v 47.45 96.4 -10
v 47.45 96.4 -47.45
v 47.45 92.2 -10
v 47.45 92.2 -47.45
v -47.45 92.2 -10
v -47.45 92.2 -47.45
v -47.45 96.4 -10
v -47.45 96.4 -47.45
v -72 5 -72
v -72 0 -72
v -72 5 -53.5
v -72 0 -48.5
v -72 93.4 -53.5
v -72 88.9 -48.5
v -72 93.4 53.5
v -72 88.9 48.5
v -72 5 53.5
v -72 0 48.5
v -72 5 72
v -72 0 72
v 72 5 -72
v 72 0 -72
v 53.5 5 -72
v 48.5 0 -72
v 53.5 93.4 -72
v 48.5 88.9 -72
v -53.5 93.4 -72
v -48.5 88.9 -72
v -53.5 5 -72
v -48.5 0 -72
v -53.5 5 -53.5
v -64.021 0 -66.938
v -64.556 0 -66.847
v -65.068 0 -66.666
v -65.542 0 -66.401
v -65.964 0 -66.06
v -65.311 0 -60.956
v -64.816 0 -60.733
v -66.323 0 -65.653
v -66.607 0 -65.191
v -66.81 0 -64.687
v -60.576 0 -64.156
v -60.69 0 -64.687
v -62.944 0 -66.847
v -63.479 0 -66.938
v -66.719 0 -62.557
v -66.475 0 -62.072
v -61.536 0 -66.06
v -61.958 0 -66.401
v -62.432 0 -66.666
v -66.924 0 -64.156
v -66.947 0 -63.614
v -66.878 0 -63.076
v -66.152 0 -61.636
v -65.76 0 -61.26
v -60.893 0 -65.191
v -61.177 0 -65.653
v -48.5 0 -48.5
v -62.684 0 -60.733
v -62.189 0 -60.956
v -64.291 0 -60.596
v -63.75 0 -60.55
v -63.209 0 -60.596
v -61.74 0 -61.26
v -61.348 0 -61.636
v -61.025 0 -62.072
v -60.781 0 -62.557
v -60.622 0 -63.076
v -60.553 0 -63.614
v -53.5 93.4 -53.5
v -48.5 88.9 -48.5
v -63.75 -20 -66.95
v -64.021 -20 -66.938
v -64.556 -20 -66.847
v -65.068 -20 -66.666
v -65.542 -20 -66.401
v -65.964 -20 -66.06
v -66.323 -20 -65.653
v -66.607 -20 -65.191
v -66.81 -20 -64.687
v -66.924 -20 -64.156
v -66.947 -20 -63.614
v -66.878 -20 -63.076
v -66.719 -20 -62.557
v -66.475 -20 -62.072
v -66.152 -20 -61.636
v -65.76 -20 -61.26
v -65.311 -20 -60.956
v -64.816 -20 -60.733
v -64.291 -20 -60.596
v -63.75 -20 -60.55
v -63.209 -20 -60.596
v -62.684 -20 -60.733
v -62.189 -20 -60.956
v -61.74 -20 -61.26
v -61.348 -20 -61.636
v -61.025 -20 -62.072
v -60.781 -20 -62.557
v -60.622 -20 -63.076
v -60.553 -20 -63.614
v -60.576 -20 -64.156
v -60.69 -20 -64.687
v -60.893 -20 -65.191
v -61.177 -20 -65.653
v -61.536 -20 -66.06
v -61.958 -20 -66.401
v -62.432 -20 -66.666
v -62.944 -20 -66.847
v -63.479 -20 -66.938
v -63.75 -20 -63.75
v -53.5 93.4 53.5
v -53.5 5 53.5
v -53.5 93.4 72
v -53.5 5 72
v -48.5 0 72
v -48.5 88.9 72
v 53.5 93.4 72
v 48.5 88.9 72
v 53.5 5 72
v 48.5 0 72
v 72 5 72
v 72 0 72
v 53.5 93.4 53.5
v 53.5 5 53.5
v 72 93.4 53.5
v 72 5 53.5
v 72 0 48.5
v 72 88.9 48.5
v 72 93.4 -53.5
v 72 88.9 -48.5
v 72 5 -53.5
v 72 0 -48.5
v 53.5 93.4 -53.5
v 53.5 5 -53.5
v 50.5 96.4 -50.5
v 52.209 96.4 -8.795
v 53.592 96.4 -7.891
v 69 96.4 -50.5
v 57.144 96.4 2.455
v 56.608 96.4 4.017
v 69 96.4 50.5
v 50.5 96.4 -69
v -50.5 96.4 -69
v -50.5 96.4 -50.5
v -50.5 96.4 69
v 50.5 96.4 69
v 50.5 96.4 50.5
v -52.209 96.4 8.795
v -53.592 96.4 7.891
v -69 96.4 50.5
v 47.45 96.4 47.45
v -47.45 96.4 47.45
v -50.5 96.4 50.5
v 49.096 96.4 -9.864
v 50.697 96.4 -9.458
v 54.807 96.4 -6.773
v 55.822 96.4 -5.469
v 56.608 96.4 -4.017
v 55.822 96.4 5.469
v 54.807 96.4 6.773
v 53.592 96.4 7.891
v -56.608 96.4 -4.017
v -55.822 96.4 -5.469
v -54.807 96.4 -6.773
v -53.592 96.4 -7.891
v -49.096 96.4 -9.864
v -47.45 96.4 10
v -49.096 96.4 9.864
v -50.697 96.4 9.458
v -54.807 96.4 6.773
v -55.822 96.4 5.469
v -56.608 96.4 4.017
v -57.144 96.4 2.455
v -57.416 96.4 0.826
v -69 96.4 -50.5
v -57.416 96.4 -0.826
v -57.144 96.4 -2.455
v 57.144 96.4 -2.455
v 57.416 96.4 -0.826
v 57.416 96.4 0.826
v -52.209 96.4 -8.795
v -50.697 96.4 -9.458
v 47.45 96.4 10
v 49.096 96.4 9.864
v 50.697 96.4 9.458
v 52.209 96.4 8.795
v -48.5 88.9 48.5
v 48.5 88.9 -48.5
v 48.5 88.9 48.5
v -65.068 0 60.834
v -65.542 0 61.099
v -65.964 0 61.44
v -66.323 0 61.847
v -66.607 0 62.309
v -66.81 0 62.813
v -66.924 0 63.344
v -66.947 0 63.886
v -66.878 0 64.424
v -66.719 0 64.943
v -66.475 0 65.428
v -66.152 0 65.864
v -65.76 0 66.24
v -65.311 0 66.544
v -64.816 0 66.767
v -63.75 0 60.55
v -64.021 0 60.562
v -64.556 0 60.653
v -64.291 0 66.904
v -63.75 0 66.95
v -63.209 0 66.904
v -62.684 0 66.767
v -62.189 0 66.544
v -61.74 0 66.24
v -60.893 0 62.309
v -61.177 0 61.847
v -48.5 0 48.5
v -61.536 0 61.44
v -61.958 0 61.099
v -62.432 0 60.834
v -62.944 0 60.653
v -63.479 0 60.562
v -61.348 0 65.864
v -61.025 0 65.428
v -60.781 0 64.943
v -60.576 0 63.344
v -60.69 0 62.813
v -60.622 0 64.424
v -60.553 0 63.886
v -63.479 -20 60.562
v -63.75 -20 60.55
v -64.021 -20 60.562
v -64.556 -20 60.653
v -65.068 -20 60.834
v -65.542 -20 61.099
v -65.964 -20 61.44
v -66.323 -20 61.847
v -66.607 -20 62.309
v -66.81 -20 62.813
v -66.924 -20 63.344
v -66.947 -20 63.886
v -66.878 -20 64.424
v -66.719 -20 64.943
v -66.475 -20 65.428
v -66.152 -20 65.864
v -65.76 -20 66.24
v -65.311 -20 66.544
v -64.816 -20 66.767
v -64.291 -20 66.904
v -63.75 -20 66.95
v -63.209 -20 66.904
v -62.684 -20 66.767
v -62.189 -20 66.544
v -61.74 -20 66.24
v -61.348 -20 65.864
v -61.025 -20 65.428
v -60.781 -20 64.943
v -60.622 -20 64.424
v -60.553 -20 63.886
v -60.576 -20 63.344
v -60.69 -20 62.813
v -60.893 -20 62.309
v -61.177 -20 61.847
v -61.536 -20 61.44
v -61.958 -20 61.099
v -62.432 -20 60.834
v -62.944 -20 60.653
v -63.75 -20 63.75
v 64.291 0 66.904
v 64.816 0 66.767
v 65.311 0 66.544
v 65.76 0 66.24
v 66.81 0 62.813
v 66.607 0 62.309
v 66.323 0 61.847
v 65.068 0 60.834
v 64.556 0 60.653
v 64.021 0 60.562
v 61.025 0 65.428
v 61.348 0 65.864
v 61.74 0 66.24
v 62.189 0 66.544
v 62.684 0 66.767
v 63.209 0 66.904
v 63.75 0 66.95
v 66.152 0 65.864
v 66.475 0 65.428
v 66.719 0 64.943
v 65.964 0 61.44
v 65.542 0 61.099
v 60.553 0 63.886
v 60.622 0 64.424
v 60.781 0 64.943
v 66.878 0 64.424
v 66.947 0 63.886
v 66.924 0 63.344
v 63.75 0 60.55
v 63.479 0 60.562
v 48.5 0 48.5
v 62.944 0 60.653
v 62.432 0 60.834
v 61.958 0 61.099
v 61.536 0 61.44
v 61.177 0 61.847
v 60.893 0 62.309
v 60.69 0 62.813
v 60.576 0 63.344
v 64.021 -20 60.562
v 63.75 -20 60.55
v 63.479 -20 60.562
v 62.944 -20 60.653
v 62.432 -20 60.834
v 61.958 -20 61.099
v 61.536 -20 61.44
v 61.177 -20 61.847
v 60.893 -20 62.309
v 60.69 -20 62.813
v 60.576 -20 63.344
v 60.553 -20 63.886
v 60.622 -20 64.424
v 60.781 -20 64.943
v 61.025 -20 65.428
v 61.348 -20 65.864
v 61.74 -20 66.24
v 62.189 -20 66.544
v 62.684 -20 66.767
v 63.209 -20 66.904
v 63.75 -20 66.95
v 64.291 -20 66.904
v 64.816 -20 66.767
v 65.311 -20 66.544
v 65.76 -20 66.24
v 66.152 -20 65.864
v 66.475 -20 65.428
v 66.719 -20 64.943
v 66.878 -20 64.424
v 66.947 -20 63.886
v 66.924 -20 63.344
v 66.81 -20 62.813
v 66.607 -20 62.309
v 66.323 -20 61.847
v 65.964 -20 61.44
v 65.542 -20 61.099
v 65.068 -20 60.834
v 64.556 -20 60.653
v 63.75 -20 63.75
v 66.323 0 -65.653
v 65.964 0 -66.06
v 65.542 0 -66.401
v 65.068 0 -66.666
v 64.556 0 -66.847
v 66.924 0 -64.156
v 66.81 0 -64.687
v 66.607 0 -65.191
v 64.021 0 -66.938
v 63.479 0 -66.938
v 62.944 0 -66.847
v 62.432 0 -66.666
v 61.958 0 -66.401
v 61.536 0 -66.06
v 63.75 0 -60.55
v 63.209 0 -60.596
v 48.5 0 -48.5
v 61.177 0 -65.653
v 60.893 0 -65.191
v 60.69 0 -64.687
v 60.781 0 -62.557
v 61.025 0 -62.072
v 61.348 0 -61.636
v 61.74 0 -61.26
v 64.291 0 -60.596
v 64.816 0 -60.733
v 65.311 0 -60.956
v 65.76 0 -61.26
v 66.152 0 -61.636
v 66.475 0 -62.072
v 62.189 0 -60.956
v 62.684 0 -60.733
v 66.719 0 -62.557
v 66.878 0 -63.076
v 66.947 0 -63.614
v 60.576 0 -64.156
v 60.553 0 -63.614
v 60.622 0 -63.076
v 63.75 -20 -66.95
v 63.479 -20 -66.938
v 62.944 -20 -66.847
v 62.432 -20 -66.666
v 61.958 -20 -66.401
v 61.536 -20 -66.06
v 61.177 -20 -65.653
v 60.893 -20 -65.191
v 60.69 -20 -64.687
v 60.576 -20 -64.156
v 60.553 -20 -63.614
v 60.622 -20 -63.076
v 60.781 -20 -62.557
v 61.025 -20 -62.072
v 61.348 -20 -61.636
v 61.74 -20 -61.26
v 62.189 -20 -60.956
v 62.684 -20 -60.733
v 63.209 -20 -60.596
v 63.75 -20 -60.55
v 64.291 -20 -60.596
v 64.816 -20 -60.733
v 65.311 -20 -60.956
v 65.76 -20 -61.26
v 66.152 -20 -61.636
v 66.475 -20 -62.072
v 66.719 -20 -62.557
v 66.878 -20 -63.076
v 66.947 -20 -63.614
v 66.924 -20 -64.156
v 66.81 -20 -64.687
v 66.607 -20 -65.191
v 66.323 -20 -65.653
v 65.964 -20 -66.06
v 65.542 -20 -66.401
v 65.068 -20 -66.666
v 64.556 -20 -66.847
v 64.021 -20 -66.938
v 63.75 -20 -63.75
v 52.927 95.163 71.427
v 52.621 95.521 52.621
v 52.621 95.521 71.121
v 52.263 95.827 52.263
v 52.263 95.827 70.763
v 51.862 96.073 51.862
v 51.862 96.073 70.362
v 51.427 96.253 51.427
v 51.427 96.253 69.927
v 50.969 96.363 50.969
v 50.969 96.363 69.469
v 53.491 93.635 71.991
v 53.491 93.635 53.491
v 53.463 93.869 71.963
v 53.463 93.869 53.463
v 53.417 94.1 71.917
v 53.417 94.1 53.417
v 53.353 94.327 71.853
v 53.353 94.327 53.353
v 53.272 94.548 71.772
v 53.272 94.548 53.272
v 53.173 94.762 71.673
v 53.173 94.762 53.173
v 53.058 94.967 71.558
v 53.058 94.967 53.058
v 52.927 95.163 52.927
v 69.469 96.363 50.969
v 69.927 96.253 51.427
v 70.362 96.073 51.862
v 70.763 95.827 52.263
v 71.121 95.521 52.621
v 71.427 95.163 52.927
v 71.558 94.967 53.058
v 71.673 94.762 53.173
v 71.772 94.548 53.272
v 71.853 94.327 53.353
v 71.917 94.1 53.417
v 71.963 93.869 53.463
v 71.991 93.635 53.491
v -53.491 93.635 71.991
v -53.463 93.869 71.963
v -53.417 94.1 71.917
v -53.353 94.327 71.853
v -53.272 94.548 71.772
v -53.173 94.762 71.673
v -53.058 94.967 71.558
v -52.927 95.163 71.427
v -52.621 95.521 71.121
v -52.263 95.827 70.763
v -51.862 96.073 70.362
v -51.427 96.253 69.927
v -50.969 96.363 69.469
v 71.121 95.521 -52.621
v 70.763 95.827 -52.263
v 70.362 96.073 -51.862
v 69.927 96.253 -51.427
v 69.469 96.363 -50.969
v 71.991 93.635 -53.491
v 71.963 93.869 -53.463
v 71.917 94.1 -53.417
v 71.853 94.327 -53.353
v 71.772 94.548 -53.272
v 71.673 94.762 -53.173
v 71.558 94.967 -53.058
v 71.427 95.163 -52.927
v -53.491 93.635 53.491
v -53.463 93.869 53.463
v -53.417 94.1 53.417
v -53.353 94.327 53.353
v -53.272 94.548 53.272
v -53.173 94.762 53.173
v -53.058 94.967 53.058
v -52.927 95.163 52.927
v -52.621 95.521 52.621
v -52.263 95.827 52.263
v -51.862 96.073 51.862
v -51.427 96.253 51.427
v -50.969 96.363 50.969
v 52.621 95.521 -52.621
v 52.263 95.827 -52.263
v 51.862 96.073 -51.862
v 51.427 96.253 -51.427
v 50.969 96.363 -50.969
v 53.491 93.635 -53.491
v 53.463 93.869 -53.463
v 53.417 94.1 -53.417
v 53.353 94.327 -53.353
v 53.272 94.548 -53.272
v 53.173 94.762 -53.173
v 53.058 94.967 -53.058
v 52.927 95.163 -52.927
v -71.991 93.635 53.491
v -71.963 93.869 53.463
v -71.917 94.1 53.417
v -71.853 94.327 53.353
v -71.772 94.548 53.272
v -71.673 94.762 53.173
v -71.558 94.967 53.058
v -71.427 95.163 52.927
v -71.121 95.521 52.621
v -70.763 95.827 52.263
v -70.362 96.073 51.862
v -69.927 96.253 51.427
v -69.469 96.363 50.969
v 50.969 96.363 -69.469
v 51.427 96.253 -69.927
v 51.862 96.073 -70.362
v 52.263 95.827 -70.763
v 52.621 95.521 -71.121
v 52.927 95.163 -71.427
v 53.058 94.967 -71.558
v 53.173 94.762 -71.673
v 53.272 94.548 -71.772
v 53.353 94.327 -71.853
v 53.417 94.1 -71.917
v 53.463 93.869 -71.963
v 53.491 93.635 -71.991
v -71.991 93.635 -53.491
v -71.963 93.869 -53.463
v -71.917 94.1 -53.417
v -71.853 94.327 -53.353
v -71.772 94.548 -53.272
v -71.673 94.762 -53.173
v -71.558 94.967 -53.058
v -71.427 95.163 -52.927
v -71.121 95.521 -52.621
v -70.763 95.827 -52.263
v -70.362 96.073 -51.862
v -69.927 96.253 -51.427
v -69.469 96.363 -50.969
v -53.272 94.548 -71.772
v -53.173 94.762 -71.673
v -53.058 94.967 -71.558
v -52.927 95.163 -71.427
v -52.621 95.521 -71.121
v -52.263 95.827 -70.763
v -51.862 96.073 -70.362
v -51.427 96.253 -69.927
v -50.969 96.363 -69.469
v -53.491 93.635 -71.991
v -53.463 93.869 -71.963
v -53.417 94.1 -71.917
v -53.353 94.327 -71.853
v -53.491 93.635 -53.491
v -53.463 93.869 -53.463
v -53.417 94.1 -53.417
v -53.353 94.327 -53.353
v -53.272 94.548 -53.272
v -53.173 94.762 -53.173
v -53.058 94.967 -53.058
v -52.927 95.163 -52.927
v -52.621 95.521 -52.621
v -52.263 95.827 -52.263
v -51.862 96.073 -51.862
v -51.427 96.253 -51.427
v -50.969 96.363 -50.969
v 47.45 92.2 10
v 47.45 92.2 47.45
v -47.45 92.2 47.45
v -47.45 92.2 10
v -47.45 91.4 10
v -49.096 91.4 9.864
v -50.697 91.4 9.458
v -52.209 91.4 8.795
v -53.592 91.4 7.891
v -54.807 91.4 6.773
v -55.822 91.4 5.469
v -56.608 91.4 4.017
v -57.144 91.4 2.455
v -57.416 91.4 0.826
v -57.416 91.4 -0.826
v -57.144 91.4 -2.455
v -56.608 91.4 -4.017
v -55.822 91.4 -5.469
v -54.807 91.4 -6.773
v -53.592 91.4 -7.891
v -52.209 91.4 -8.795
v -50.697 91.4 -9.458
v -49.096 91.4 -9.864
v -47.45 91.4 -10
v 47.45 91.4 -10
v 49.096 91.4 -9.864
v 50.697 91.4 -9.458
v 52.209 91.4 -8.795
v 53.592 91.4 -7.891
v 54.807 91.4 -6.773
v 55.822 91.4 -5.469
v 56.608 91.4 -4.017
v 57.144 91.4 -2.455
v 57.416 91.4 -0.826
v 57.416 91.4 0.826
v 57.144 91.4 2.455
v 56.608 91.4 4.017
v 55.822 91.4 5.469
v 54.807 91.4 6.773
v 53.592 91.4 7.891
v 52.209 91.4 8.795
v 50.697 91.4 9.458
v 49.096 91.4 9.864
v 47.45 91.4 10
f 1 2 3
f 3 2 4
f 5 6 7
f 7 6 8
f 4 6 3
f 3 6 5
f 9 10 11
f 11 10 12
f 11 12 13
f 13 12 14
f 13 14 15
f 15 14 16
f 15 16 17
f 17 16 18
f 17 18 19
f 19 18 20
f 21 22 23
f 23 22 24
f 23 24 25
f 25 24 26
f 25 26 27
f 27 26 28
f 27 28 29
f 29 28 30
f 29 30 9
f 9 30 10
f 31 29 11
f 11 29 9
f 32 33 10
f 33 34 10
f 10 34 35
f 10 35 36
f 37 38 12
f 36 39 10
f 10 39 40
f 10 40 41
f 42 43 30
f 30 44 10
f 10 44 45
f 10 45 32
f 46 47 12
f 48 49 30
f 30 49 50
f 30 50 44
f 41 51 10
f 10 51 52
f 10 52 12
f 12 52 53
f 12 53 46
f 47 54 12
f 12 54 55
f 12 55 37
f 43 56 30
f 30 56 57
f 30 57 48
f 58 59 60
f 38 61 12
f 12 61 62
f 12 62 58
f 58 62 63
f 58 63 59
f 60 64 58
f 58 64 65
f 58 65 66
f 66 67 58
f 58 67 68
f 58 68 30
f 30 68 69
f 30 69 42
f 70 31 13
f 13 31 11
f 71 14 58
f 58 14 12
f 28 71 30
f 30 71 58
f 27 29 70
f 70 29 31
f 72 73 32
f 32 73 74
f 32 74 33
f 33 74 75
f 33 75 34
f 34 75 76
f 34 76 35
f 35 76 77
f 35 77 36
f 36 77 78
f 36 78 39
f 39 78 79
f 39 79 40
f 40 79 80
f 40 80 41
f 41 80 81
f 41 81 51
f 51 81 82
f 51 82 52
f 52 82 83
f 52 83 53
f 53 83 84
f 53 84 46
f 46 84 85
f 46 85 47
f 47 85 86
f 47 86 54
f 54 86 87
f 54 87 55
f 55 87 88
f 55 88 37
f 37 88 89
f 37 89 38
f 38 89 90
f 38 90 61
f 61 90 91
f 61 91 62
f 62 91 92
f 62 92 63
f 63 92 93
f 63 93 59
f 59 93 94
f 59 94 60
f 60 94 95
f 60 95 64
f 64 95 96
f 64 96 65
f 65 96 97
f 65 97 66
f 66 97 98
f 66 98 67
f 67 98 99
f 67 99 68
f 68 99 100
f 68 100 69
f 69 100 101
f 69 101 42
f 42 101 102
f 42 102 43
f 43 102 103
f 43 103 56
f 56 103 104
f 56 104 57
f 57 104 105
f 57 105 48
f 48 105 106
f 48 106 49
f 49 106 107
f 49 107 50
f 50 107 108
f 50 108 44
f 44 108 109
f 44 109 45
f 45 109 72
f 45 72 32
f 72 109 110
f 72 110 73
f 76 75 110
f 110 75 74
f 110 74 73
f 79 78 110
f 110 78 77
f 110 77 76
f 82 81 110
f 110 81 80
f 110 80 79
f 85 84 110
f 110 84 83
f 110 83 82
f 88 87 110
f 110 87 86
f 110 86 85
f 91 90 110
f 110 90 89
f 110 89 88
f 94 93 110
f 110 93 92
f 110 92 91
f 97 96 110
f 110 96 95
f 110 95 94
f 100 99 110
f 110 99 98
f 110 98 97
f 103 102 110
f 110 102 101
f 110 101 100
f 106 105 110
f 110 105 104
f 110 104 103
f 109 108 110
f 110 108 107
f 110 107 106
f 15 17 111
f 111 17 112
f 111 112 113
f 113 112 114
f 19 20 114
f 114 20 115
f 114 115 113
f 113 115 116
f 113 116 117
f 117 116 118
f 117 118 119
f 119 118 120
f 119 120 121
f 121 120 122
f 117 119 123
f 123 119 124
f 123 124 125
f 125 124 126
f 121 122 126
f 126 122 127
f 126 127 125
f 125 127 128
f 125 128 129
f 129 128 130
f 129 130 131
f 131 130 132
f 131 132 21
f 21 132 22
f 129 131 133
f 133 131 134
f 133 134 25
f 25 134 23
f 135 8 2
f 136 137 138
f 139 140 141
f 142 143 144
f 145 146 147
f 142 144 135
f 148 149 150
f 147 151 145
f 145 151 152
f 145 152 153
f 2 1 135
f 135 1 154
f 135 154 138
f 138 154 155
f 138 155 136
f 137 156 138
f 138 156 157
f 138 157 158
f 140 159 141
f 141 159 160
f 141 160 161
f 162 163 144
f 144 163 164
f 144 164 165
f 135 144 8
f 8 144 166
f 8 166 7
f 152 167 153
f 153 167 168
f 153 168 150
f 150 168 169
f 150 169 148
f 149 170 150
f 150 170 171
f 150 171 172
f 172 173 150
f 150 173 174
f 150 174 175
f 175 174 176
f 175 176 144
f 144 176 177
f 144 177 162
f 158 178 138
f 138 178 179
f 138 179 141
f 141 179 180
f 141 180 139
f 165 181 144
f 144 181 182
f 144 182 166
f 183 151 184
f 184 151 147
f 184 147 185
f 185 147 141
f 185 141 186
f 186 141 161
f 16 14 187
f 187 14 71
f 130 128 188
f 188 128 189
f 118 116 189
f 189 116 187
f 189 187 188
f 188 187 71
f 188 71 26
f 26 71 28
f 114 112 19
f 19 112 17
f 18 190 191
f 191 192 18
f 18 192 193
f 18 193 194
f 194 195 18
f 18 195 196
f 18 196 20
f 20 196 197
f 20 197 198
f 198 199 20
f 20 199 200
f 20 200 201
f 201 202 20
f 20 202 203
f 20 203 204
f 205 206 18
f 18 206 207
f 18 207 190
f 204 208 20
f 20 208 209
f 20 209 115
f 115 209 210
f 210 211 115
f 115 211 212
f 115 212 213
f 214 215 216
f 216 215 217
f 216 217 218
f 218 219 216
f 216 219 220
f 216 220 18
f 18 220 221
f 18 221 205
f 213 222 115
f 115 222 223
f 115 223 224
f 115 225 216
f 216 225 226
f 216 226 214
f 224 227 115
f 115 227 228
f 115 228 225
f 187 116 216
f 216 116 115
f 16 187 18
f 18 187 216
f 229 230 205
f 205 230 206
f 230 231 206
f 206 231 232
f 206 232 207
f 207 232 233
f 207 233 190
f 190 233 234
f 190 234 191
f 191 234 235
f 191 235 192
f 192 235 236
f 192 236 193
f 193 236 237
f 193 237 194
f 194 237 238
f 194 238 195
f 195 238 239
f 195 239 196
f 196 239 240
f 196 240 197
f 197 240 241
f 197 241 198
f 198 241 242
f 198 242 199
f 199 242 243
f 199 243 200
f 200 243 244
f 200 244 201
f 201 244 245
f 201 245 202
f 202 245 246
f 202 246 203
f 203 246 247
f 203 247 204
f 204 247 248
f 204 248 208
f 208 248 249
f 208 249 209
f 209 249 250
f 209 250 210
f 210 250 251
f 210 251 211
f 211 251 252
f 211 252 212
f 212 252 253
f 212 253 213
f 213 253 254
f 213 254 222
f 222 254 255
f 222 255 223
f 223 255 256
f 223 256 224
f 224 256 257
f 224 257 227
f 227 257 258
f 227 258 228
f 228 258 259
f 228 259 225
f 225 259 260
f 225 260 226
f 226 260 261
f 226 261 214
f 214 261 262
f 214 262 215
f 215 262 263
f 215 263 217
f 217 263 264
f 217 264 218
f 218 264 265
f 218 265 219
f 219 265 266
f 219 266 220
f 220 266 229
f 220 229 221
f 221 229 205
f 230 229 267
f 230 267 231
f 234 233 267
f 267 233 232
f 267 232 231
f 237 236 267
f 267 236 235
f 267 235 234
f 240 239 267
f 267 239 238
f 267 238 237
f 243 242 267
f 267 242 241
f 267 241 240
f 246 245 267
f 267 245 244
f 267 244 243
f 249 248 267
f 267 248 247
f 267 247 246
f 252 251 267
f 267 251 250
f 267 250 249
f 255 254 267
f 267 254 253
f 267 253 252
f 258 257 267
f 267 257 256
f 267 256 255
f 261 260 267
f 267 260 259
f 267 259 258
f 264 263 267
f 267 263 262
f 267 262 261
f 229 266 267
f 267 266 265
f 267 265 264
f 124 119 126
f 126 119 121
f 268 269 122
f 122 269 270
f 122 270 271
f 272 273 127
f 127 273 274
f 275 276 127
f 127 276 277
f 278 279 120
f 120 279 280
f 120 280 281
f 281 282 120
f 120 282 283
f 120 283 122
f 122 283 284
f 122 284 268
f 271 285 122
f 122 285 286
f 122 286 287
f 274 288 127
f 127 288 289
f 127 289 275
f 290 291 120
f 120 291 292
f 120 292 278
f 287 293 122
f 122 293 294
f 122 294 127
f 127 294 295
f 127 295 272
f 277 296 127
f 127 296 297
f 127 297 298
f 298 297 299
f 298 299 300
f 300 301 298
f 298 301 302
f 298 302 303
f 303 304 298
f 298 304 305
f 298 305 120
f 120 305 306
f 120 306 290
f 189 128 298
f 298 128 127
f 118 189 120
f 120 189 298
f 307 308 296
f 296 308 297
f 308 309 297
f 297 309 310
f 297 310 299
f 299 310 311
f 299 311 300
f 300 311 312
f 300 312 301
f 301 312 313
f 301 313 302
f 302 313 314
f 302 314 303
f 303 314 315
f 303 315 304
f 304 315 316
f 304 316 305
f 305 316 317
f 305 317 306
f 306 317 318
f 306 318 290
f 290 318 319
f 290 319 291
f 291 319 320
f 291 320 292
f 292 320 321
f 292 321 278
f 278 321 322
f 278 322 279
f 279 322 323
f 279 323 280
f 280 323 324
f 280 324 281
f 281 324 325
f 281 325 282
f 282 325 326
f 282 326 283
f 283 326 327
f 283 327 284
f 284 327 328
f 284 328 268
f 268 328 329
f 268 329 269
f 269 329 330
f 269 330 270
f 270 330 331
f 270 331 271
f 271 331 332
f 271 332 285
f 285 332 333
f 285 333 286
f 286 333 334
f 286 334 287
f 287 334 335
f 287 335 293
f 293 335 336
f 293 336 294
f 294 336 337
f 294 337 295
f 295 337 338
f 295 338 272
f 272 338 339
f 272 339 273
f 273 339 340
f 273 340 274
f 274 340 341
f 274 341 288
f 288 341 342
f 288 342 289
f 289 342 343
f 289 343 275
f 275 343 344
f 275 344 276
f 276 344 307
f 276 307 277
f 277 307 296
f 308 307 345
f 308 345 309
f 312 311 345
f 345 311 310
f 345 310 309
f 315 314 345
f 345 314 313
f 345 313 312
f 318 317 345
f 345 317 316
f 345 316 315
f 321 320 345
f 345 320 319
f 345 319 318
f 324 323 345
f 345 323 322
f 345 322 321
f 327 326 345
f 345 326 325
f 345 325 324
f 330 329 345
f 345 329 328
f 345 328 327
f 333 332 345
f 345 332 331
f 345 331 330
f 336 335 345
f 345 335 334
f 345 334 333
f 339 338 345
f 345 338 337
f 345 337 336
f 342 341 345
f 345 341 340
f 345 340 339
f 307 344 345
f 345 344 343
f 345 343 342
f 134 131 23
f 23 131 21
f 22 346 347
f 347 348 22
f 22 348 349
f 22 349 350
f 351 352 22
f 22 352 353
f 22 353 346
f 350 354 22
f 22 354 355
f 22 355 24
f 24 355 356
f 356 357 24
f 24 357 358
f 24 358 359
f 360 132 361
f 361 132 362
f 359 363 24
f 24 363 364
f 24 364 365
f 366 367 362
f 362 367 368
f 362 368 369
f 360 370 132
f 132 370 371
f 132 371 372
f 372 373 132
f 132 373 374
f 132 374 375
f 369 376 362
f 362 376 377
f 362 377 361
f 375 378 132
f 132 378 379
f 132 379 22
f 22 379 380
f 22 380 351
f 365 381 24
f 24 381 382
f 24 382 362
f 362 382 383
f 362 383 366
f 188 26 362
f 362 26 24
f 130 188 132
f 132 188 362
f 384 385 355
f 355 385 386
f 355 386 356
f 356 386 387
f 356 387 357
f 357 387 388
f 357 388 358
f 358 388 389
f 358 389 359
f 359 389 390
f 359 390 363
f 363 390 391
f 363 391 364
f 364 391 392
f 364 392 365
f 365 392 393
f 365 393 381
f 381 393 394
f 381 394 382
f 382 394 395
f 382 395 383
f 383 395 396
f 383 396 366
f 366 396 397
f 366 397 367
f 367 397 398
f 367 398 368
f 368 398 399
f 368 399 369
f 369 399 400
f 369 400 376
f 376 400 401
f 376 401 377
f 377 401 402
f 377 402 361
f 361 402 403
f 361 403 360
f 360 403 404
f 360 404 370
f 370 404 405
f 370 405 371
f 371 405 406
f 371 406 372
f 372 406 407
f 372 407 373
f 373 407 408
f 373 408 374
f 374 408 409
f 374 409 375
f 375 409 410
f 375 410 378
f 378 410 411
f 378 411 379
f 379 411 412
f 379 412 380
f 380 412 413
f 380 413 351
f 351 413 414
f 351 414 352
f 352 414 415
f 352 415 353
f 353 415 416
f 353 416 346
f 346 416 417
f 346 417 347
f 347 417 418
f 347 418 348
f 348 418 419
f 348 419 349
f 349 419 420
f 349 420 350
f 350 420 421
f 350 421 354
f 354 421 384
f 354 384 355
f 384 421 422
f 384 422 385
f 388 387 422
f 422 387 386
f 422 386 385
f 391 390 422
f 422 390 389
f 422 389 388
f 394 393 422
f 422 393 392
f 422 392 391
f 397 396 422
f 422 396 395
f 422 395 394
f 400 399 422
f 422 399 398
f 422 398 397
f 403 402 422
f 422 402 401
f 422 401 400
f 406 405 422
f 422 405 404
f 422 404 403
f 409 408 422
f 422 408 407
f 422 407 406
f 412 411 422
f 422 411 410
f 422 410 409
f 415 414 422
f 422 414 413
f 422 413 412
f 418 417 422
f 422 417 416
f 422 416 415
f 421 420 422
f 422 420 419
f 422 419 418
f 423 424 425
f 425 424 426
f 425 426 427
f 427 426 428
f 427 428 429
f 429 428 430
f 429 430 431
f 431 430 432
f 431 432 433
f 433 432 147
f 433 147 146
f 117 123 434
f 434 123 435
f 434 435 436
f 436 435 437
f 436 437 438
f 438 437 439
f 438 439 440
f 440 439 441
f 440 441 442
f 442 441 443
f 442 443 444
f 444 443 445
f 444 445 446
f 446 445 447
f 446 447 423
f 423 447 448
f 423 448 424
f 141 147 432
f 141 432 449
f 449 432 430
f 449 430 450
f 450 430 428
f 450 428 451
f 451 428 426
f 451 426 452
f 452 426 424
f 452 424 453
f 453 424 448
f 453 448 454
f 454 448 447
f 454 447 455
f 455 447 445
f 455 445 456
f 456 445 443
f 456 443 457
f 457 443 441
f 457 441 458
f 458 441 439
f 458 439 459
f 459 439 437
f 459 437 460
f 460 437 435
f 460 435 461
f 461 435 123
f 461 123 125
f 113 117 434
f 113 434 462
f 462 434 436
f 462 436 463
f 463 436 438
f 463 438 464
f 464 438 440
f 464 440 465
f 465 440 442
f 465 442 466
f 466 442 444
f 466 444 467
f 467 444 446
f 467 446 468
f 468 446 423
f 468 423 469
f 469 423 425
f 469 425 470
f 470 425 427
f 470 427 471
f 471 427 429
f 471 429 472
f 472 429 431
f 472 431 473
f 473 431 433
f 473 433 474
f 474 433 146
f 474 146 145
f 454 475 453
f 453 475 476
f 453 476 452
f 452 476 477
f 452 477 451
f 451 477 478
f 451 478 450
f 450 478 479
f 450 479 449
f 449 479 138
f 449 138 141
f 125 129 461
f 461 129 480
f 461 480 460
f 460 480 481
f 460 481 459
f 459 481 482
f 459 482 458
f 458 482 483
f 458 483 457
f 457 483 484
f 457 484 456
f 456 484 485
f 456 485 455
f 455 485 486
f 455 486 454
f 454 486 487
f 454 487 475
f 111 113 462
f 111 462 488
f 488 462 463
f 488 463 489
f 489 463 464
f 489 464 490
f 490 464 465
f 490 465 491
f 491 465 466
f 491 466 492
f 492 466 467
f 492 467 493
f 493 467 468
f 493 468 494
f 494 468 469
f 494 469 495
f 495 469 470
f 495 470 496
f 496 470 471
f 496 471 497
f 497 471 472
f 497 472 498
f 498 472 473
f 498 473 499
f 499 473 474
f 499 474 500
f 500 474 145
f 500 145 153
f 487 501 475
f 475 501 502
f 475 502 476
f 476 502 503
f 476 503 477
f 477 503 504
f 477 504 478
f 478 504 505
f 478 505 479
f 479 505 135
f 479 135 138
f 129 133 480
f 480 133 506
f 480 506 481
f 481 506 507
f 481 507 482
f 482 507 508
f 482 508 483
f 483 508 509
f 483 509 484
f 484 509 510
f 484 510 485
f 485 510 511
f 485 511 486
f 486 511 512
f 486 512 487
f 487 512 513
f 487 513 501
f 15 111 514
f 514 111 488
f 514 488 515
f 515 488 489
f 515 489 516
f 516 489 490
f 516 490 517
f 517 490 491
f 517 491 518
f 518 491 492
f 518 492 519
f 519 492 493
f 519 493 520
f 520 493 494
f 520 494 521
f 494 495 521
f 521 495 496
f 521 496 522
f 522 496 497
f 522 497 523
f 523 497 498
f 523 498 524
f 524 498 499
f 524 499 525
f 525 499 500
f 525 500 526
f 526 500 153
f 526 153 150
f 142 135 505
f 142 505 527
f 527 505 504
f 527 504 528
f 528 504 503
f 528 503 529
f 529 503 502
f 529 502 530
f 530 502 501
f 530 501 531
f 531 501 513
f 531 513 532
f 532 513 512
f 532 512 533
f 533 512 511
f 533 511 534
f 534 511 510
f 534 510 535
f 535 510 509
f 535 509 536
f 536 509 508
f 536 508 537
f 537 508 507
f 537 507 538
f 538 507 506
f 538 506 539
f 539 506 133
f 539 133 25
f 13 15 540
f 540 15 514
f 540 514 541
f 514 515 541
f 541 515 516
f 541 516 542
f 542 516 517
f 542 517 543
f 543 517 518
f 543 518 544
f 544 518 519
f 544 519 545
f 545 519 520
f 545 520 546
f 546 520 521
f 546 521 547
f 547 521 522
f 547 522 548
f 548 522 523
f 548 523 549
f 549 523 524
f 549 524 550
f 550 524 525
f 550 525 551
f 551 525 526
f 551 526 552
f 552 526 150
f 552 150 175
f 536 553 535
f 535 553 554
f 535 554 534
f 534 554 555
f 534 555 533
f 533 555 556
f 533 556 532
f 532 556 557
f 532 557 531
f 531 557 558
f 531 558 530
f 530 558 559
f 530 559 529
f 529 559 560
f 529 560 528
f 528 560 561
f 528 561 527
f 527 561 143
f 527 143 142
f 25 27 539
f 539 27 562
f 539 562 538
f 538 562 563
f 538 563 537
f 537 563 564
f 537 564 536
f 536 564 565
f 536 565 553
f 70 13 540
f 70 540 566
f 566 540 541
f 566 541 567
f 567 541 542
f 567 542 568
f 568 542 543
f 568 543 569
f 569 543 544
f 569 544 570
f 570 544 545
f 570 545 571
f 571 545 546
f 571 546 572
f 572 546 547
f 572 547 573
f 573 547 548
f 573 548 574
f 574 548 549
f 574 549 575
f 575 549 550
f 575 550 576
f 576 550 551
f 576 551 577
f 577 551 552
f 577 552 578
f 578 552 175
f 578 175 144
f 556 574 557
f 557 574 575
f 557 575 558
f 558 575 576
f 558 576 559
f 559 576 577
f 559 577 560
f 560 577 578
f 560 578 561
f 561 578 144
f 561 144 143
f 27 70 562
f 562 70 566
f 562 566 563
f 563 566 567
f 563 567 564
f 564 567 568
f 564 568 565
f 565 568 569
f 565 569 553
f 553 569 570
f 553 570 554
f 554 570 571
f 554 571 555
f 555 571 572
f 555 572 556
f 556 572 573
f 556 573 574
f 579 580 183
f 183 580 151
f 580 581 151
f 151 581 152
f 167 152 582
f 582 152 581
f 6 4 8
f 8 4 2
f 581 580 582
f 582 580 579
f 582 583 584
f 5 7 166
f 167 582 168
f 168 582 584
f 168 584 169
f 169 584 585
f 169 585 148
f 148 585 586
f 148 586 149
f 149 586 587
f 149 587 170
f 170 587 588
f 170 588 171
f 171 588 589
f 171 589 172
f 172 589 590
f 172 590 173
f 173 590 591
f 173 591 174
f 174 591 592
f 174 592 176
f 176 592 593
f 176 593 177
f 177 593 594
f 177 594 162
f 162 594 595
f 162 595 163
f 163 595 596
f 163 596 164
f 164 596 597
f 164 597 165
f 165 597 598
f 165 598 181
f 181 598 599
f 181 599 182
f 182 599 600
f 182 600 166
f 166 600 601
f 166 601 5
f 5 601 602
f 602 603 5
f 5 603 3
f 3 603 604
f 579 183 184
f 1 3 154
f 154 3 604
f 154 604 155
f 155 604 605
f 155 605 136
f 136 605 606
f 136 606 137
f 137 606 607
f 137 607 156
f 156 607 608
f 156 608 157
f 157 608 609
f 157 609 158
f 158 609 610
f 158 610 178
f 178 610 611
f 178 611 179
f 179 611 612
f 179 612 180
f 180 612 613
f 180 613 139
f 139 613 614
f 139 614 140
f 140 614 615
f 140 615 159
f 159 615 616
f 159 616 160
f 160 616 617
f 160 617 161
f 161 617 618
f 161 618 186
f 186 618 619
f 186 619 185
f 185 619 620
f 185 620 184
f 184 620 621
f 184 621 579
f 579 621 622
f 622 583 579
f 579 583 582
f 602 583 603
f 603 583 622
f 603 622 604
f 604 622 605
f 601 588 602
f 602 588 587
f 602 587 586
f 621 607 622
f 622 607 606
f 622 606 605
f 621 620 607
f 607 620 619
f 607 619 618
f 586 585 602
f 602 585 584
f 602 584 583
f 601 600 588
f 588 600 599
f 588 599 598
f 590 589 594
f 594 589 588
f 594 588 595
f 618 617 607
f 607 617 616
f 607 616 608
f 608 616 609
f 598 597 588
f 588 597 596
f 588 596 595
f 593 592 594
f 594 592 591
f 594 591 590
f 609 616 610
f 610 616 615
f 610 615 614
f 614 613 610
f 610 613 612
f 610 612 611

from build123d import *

# Parameters (mm, degrees)
SKETCH1_W             = 18.5
SKETCH1_H             = 18.5
BOSS_EXTRUDE1_DEPTH   = 5
BOSS_EXTRUDE1_2_DEPTH = 5
BOSS_EXTRUDE1_3_DEPTH = 5
BOSS_EXTRUDE1_4_DEPTH = 5
BOSS_EXTRUDE2_DEPTH   = 88.9
SKETCH3_R             = 3.2
BOSS_EXTRUDE3_DEPTH   = 20
BOSS_EXTRUDE4_DEPTH   = 7.5
FILLET1_R             = 3
SKETCH5_W             = 94.9
SKETCH5_H             = 94.9
CUT_EXTRUDE1_DEPTH    = 4.2
CUT_EXTRUDE2_DEPTH    = 5


with BuildPart() as part:
    # Sketch1 → Boss-Extrude1 (new body)
    with BuildSketch(Plane(origin=(0, 0, 0), x_dir=(1, 0, 0), z_dir=(0, 1, 0))):
        with Locations((-62.75, 62.75)):
            Rectangle(SKETCH1_W, SKETCH1_H)
    extrude(amount=BOSS_EXTRUDE1_DEPTH)



with BuildPart() as body_2:
    # Sketch1 → Boss-Extrude1 2 (new body)
    with BuildSketch(Plane(origin=(0, 0, 0), x_dir=(1, 0, 0), z_dir=(0, 1, 0))):
        with Locations((-62.75, -62.75)):
            Rectangle(SKETCH1_W, SKETCH1_H)
    extrude(amount=BOSS_EXTRUDE1_2_DEPTH)


with BuildPart() as body_3:
    # Sketch1 → Boss-Extrude1 3 (new body)
    with BuildSketch(Plane(origin=(0, 0, 0), x_dir=(1, 0, 0), z_dir=(0, 1, 0))):
        with Locations((62.75, -62.75)):
            Rectangle(SKETCH1_W, SKETCH1_H)
    extrude(amount=BOSS_EXTRUDE1_3_DEPTH)


with BuildPart() as body_4:
    # Sketch1 → Boss-Extrude1 4 (new body)
    with BuildSketch(Plane(origin=(0, 0, 0), x_dir=(1, 0, 0), z_dir=(0, 1, 0))):
        with Locations((62.75, 62.75)):
            Rectangle(SKETCH1_W, SKETCH1_H)
    extrude(amount=BOSS_EXTRUDE1_4_DEPTH)


with BuildPart() as part_1:
    add(part.part)

    add(body_2.part)  # Boss-Extrude2 merges body 2

    add(body_3.part)  # Boss-Extrude2 merges body 3

    add(body_4.part)  # Boss-Extrude2 merges body 4
    # Sketch2 → Boss-Extrude2 (add)
    with BuildSketch(Plane.XZ):
        Polygon((-72, -53.5), (-72, -48.5), (-48.5, -48.5), (-48.5, -72), (-53.5, -72), (-53.5, -53.5), align=None)
        Polygon((-72, 53.5), (-53.5, 53.5), (-53.5, 72), (-48.5, 72), (-48.5, 48.5), (-72, 48.5), align=None)
        Polygon((72, -53.5), (53.5, -53.5), (53.5, -72), (48.5, -72), (48.5, -48.5), (72, -48.5), align=None)
        Polygon((72, 53.5), (72, 48.5), (48.5, 48.5), (48.5, 72), (53.5, 72), (53.5, 53.5), align=None)
    extrude(amount=-BOSS_EXTRUDE2_DEPTH)

    # Sketch3 → Boss-Extrude3 (add)
    with BuildSketch(Plane.XZ):
        with Locations(Location((-63.75, 63.75, 0), (0, 0, 270))):
            Circle(SKETCH3_R)
        with Locations(Location((63.75, 63.75, 0), (0, 0, 270))):
            Circle(SKETCH3_R)
        with Locations(Location((-63.75, -63.75, 0), (0, 0, 90))):
            Circle(SKETCH3_R)
        with Locations(Location((63.75, -63.75, 0), (0, 0, 90))):
            Circle(SKETCH3_R)
    extrude(amount=BOSS_EXTRUDE3_DEPTH)

    # Sketch4 → Boss-Extrude4 (add)
    with BuildSketch(Plane(origin=(0, 88.9, 0), x_dir=(1, 0, 0), z_dir=(0, 1, 0))):
        Polygon((-72, 53.5), (-72, -53.5), (-53.5, -53.5), (-53.5, -72), (53.5, -72), (53.5, -53.5), (72, -53.5), (72, 53.5), (53.5, 53.5), (53.5, 72), (-53.5, 72), (-53.5, 53.5), align=None)
    extrude(amount=BOSS_EXTRUDE4_DEPTH)

    # Fillet1
    fillet1_edges = [part_1.edges().sort_by_distance(p)[0] for p in [
        (-62.75, 96.4, -53.5),
        (-72, 96.4, 0),
        (-62.75, 96.4, 53.5),
        (-53.5, 96.4, 62.75),
        (0, 96.4, 72),
        (53.5, 96.4, 62.75),
        (62.75, 96.4, 53.5),
        (72, 96.4, 0),
        (62.75, 96.4, -53.5),
        (53.5, 96.4, -62.75),
        (0, 96.4, -72),
        (-53.5, 96.4, -62.75),
    ]]
    fillet(fillet1_edges, radius=FILLET1_R)

    # Sketch5 → Cut-Extrude1 (cut)
    with BuildSketch(Plane(origin=(0, 96.4, 0), x_dir=(1, 0, 0), z_dir=(0, 1, 0))):
        Rectangle(SKETCH5_W, SKETCH5_H)
    extrude(amount=-CUT_EXTRUDE1_DEPTH, mode=Mode.SUBTRACT)

    # Sketch6 → Cut-Extrude2 (cut)
    with BuildSketch(Plane(origin=(0, 96.4, 0), x_dir=(1, 0, 0), z_dir=(0, 1, 0))):
        with BuildLine():
            Line((-47.45, 10), (47.45, 10))
            ThreePointArc((47.45, 10), (57.45, 0), (47.45, -10))
            Line((47.45, -10), (-47.45, -10))
            ThreePointArc((-47.45, -10), (-57.45, 0), (-47.45, 10))
        make_face()
    extrude(amount=-CUT_EXTRUDE2_DEPTH, mode=Mode.SUBTRACT)


solid = part_1.part
